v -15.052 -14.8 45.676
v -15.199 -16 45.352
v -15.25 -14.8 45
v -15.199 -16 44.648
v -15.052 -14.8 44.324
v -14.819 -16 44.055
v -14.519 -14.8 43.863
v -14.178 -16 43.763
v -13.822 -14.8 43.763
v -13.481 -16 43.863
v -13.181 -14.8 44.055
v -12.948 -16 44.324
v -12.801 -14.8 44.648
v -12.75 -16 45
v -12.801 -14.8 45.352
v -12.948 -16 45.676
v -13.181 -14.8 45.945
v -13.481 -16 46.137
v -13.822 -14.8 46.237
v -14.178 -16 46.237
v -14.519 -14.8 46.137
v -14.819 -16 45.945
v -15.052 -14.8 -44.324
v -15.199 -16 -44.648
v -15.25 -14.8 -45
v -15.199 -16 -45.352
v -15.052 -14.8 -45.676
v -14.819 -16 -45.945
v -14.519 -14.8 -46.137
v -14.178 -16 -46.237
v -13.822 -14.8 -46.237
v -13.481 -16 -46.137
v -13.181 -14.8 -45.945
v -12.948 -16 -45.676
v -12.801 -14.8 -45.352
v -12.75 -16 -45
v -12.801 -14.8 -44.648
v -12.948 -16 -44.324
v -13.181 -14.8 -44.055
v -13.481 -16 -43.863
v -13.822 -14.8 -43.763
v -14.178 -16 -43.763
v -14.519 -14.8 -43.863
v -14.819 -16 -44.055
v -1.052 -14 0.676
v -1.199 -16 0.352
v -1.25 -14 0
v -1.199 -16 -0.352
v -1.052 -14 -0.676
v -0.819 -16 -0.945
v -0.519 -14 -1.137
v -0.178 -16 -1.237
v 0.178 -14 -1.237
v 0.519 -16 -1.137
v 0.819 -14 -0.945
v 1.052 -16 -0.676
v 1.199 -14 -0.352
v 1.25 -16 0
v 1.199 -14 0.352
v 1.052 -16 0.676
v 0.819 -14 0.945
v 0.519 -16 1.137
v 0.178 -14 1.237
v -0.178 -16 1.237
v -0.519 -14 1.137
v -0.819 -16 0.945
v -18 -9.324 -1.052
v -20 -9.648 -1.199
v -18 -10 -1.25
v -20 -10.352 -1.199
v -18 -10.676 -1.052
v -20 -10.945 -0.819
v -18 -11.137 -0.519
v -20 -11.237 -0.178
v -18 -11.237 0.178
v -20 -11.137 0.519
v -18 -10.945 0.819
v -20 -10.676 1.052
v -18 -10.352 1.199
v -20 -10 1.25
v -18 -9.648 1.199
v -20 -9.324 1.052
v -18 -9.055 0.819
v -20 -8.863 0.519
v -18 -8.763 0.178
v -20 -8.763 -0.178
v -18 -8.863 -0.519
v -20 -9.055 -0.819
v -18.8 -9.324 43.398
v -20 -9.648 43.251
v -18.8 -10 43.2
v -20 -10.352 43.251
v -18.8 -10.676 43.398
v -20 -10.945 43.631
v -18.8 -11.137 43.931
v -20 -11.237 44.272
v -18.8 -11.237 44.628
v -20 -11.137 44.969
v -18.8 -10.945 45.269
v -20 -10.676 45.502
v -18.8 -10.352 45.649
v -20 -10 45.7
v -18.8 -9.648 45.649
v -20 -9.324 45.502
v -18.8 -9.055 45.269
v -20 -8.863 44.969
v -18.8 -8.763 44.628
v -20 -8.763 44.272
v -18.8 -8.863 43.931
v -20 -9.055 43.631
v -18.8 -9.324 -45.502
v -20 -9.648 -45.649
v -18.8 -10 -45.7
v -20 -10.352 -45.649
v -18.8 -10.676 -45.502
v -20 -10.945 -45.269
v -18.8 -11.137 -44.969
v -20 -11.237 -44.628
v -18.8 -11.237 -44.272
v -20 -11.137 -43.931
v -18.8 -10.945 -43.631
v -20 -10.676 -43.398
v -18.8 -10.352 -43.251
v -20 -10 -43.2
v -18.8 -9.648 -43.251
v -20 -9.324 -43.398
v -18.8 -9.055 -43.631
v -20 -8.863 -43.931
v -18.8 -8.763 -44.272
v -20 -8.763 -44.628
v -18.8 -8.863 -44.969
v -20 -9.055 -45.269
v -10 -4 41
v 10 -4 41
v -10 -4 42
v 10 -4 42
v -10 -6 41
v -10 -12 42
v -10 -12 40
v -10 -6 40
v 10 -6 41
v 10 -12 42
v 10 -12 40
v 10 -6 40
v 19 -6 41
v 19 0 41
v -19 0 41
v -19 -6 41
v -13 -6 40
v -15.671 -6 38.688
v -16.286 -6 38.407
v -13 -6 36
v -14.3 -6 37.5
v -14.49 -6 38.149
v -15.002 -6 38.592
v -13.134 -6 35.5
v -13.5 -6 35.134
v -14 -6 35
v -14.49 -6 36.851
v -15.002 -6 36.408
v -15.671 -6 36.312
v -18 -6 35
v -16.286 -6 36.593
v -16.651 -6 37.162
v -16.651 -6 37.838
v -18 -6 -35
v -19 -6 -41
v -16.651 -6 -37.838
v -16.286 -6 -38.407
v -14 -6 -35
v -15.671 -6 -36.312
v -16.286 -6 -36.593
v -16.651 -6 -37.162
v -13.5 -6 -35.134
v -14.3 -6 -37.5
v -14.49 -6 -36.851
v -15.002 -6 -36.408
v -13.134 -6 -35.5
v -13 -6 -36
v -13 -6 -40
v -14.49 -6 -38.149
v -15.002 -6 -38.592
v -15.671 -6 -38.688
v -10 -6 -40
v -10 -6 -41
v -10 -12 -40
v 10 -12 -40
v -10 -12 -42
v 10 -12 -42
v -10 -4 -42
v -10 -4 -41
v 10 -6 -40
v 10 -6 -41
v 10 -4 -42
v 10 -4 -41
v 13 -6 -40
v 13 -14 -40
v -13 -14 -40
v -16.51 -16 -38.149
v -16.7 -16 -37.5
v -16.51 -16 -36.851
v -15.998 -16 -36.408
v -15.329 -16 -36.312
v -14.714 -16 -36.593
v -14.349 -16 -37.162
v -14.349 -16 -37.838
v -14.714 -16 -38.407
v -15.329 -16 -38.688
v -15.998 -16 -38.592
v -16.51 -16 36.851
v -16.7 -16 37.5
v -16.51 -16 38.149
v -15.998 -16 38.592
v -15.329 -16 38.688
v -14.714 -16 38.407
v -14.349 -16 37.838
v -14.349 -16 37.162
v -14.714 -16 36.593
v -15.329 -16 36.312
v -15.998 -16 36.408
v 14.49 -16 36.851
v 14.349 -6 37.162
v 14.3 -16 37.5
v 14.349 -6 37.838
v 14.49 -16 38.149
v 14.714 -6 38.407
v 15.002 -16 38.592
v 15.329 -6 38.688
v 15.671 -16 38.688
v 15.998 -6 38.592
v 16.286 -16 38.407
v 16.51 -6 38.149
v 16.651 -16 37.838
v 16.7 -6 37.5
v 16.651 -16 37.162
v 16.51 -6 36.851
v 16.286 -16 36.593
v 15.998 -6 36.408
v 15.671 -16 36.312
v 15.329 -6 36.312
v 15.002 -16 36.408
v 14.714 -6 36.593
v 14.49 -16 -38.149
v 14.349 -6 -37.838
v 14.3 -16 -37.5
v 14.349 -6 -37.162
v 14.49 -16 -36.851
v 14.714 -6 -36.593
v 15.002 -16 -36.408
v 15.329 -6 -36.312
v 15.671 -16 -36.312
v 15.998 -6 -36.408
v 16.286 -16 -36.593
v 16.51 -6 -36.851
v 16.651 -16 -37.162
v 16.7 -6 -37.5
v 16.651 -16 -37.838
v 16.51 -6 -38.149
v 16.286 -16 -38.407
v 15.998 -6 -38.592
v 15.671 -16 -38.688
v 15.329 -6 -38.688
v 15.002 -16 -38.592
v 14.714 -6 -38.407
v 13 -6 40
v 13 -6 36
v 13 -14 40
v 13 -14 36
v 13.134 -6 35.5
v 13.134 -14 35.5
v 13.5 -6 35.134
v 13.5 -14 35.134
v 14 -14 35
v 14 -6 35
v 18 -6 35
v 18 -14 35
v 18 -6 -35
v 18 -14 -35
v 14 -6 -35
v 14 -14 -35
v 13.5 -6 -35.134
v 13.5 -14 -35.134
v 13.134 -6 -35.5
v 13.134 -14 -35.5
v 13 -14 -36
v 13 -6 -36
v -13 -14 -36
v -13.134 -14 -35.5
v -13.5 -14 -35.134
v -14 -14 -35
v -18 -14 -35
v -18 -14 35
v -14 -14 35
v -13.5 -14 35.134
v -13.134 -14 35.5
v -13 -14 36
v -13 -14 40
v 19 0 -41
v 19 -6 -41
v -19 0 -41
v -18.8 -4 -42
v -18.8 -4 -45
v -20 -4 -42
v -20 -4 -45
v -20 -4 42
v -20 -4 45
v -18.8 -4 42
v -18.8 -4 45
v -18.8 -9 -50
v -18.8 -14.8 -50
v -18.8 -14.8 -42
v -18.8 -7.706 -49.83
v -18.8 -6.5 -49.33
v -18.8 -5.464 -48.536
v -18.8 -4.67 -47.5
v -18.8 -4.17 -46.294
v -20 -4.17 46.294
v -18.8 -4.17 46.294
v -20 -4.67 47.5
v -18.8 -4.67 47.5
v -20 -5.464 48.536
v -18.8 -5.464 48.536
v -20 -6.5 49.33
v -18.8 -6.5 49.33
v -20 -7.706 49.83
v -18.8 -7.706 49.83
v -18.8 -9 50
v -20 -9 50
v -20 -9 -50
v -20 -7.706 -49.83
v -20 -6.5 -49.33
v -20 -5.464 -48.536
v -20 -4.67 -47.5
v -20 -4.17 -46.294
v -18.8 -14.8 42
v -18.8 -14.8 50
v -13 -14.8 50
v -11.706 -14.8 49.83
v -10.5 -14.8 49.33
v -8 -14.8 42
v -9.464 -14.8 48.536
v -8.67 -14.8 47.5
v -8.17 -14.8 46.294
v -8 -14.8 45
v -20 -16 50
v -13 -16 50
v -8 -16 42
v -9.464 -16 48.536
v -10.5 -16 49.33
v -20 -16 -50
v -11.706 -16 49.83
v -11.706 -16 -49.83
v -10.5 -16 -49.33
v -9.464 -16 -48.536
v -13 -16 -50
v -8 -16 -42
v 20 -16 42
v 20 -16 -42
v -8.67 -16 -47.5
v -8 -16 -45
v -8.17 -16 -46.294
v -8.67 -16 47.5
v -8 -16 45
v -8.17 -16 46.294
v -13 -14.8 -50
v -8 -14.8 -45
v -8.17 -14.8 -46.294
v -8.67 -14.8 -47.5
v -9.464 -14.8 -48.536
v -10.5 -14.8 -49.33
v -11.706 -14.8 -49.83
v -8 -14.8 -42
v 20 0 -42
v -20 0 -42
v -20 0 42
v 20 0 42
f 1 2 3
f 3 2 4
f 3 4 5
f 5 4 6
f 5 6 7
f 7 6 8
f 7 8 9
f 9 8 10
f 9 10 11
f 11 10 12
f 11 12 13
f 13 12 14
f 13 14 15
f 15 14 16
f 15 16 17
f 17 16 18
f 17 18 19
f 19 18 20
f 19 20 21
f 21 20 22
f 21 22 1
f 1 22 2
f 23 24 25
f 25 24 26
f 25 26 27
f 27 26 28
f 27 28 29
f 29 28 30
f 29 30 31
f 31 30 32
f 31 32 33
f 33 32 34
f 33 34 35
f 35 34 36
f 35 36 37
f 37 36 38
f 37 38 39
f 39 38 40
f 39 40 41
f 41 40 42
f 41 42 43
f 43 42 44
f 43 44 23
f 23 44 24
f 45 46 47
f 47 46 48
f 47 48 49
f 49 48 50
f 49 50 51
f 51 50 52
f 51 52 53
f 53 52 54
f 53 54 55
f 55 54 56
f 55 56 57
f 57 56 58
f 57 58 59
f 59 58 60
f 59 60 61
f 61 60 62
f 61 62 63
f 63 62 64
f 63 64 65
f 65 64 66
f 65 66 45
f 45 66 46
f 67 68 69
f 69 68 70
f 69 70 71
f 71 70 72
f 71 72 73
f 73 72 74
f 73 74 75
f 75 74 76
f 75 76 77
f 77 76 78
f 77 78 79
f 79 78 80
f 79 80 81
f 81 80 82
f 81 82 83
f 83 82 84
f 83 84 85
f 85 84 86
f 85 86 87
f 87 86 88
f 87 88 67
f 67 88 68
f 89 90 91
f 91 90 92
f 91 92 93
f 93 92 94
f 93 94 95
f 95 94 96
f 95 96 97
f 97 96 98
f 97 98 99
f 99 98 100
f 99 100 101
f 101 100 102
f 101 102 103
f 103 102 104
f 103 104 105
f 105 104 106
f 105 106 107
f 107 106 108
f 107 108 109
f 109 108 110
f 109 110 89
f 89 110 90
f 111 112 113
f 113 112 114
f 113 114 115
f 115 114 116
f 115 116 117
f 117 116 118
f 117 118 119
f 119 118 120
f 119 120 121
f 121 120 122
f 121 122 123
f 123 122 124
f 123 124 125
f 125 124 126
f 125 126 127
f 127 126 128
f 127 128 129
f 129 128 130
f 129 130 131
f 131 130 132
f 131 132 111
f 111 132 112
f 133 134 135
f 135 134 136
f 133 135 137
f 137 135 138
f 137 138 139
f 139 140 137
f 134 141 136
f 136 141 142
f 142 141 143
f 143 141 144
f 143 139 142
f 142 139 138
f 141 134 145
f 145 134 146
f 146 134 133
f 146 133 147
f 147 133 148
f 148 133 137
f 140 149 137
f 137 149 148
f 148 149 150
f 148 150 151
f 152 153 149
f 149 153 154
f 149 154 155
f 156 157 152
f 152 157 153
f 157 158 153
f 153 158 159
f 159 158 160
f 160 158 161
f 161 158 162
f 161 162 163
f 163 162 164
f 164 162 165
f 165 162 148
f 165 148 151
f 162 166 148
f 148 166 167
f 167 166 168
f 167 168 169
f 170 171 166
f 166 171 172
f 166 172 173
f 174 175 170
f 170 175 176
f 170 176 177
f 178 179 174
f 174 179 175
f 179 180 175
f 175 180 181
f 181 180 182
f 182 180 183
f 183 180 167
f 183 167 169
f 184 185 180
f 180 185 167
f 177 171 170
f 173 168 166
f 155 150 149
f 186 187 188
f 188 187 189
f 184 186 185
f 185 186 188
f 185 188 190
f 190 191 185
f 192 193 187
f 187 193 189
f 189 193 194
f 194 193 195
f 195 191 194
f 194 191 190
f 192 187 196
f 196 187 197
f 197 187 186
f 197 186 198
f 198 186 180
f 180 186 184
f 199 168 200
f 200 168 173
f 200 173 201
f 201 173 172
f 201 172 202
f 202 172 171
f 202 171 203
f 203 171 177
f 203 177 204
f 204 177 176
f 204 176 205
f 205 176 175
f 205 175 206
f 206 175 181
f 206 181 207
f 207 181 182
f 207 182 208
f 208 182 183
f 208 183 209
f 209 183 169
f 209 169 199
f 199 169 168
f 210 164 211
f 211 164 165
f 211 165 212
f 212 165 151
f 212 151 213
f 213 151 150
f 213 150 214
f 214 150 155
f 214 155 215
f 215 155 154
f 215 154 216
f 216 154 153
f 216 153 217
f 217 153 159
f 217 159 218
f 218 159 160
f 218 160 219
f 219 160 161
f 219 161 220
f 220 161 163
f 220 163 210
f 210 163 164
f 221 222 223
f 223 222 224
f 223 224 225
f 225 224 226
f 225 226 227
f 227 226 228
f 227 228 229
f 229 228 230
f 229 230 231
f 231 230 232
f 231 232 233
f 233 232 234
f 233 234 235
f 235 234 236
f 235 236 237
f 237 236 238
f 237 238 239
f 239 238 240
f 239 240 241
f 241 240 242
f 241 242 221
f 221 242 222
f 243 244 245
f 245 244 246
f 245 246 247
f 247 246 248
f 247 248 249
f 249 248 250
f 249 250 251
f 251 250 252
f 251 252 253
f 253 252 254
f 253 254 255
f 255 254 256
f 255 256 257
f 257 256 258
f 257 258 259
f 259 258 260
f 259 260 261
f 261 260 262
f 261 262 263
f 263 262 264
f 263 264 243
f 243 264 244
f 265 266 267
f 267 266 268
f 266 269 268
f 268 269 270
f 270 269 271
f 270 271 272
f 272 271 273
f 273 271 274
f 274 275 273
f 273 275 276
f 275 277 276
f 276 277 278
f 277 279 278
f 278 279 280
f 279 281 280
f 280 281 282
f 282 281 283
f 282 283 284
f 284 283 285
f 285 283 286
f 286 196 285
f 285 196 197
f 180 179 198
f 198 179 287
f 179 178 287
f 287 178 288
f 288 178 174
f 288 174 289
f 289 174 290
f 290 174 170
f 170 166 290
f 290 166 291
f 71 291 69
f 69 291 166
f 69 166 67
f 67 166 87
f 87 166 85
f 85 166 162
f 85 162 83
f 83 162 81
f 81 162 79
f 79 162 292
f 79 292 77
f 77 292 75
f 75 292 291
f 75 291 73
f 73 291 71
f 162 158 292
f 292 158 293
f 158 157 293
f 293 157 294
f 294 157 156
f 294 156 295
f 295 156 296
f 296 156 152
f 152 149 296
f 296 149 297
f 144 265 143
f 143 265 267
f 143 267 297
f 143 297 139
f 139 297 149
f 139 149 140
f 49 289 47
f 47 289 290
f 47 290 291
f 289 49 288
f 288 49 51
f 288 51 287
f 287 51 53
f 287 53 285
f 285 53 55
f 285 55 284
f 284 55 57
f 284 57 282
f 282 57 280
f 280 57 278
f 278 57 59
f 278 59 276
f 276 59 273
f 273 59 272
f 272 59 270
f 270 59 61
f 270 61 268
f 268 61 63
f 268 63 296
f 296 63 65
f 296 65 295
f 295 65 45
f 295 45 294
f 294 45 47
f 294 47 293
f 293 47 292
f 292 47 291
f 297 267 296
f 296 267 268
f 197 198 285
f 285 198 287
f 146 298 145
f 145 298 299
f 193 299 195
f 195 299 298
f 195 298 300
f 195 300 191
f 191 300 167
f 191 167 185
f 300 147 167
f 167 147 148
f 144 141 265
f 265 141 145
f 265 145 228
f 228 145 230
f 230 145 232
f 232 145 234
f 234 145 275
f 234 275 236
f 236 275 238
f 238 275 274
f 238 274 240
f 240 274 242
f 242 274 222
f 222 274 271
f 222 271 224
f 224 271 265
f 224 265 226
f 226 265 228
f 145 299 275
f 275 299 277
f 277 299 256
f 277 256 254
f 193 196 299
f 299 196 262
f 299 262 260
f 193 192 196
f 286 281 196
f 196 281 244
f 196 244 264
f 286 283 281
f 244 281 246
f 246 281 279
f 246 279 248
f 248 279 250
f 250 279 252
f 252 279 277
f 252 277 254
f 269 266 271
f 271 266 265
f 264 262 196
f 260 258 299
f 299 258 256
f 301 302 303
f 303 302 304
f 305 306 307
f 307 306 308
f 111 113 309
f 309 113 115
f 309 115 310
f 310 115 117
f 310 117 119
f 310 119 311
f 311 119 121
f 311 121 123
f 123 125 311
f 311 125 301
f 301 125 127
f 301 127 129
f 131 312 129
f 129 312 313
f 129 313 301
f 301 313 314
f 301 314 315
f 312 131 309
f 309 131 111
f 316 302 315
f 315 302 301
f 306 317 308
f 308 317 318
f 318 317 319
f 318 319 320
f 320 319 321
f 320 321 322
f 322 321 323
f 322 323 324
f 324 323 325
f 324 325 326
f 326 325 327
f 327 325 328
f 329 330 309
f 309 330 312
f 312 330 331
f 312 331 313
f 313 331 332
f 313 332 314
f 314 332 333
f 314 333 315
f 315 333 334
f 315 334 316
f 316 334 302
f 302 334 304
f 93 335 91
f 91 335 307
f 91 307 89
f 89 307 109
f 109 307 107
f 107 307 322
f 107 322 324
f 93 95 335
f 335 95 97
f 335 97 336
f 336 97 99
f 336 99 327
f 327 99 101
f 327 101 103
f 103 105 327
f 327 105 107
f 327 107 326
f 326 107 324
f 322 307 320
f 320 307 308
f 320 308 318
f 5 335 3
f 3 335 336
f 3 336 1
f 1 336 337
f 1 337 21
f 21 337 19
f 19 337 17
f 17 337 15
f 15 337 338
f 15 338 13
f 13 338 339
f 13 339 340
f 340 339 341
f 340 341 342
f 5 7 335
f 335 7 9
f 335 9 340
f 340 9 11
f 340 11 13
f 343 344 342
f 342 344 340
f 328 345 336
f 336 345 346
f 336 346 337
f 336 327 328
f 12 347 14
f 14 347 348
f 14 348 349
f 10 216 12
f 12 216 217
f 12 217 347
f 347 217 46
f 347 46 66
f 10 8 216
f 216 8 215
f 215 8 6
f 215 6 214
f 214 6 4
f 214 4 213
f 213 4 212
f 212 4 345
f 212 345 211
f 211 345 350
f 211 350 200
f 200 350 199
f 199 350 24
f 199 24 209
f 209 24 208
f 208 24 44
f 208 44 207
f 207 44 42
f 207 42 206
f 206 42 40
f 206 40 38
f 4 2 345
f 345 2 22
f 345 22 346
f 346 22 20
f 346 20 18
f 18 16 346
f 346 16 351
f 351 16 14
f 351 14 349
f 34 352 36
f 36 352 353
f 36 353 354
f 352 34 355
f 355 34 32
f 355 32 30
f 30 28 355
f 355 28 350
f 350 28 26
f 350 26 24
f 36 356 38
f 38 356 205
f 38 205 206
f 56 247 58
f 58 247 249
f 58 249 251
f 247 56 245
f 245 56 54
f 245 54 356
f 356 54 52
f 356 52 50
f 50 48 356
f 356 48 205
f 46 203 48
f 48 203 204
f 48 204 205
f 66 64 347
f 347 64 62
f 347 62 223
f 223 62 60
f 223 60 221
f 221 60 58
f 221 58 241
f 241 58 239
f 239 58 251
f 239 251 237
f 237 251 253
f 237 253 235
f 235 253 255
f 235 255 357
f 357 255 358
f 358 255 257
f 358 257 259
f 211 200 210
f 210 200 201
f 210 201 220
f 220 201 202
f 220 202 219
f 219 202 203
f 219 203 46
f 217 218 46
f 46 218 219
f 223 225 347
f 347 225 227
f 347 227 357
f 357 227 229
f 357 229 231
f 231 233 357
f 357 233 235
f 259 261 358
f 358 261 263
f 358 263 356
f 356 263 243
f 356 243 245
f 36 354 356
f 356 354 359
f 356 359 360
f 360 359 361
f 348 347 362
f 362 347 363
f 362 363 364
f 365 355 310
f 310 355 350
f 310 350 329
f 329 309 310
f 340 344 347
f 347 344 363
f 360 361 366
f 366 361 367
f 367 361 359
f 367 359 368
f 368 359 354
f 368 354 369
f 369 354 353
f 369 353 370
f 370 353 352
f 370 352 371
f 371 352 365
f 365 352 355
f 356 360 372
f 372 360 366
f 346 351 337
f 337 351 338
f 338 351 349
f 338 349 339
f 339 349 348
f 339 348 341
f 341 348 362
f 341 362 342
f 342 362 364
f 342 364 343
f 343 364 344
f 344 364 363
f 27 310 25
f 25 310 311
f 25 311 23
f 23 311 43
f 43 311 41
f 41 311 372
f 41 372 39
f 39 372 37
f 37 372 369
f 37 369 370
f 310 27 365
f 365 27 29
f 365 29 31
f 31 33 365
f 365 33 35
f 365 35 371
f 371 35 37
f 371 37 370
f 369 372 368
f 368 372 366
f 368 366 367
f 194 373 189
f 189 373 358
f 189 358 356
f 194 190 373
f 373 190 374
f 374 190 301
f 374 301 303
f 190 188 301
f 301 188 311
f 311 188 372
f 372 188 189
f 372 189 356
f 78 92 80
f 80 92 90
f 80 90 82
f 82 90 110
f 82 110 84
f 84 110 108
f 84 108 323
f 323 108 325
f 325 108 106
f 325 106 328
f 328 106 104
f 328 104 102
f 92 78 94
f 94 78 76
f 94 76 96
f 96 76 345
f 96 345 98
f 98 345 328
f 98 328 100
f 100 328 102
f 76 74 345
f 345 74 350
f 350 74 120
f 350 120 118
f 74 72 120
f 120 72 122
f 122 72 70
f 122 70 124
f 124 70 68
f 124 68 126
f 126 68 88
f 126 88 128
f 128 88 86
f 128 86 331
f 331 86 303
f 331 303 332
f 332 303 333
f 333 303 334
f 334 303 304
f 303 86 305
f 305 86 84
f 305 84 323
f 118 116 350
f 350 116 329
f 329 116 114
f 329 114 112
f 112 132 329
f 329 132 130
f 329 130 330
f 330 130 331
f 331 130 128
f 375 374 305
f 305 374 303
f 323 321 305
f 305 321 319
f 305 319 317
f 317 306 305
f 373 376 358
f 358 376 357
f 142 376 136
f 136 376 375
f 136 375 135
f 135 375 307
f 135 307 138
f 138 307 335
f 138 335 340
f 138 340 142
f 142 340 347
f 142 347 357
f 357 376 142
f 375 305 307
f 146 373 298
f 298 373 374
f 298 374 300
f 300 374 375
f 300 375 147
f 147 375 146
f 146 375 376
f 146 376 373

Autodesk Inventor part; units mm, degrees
ref_plane "YZ Plane" through (0, 0, 0) normal (1, 0, 0) x (0, 1, 0)
ref_plane "XZ Plane" through (0, 0, 0) normal (0, 1, 0) x (-1, 0, 0)
ref_plane "XY Plane" through (0, 0, 0) normal (0, 0, 1) x (1, 0, 0)
sketch "本体面" plane through (0, 0, 0) normal (0, 1, 0) x (-1, 0, 0)
  line L0 (20, 42) -> (-20, 42)
  line L1 (-20, 42) -> (-20, -42)
  line L2 (-20, -42) -> (20, -42)
  line L3 (20, -42) -> (20, 42)
  line L4 (20, 0) -> (-20, 0) construction
  line L5 (0, 42) -> (0, -42) construction
  point P0 (0, 0)
  point P1 (0, 0)
  dimension "d0" = 84
  dimension "d1" = 40
extrude "本体" add sketch "本体面" against normal blind 16
sketch "背羽形状" plane through (0, -16, 0) normal (0, -1, 0) x (1, 0, 0)
  line L0 (-20, -50) -> (-13, -50)
  line L1 (-8, -45) -> (-8, 45)
  line L2 (-13, 50) -> (-20, 50)
  line L3 (-20, 50) -> (-20, -50)
  line L4 (-20, 42) -> (-20, -42) projected
  arc A0 (-13, -50) -> (-8, -45) centre (-13, -45) ccw
  arc A1 (-8, 45) -> (-13, 50) centre (-13, 45) ccw
  point P0 (0, 0)
  point P1 (-8, 50)
  point P2 (-8, -50)
  point P3 (-20, 0)
  point P4 (-20, 50)
  point P5 (-20, -50)
  dimension "d94" = 100
  dimension "d95" = 12
  dimension "d128" = 5
extrude "背羽" add sketch "背羽形状" against normal blind 1.2
sketch "上羽形状" plane through (-20, 0, -42) normal (-1, 0, 0) x (0, 0, 1)
  line L0 (92, -16) -> (-8, -16)
  line L1 (-8, -16) -> (-8, -9)
  line L2 (-3, -4) -> (87, -4)
  line L3 (92, -9) -> (92, -16)
  line L4 (92, -16) -> (-8, -16) projected
  arc A0 (92, -9) -> (87, -4) centre (87, -9) ccw
  arc A1 (-3, -4) -> (-8, -9) centre (-3, -9) ccw
  point P0 (42, 0)
  point P1 (-8, -4)
  point P2 (92, -4)
  point P3 (42, -16)
  dimension "d122" = 100
  dimension "d123" = 12
  dimension "d124" = 5
  dimension "d125" = 5
extrude "上羽" add sketch "上羽形状" against normal blind 1.2
sketch "空洞上面" plane through (0, 0, 0) normal (0, 1, 0) x (1, 0, 0)
  line L0 (-19, -41) -> (19, -41)
  line L1 (19, -41) -> (19, 41)
  line L2 (19, 41) -> (-19, 41)
  line L3 (-19, 41) -> (-19, -41)
  line L4 (-19, 0) -> (19, 0) construction
  line L5 (0, -41) -> (0, 41) construction
  point P0 (0, 0)
  point P1 (0, 0)
  dimension "d4" = 82
  dimension "d5" = 38
extrude "空洞上" cut sketch "空洞上面" against normal blind 6
sketch "空洞下面" plane through (0, -6, 0) normal (0, 1, 0) x (1, 0, 0)
  line L0 (-13, -40) -> (13, -40)
  line L1 (18, -35) -> (18, 35)
  line L2 (13, 40) -> (-13, 40)
  line L3 (-18, 35) -> (-18, -35)
  line L4 (-18, 0) -> (18, 0) construction
  line L5 (0, -40) -> (0, 40) construction
  line L6 (-14, -35) -> (-18, -35)
  line L7 (-13, -36) -> (-13, -40)
  line L8 (14, -35) -> (18, -35)
  line L9 (13, -36) -> (13, -40)
  line L10 (-14, 35) -> (-18, 35)
  line L11 (-13, 36) -> (-13, 40)
  line L12 (14, 35) -> (18, 35)
  line L13 (13, 36) -> (13, 40)
  arc A0 (-13, -36) -> (-14, -35) centre (-14, -36) ccw
  arc A1 (14, -35) -> (13, -36) centre (14, -36) ccw
  arc A2 (-14, 35) -> (-13, 36) centre (-14, 36) ccw
  arc A3 (13, 36) -> (14, 35) centre (14, 36) ccw
  point P0 (0, 0)
  point P1 (0, 0)
  point P2 (-13, -35)
  point P3 (13, -35)
  point P4 (-13, 35)
  point P5 (13, 35)
  dimension "d10" = 36
  dimension "d11" = 80
  dimension "d12" = 5
  dimension "d13" = 5
  dimension "d14" = 5
  dimension "d15" = 5
  dimension "d16" = 5
  dimension "d17" = 5
  dimension "d18" = 5
  dimension "d19" = 5
  dimension "d20" = 1
extrude "空洞下" cut sketch "空洞下面" against normal blind 8
sketch "取付穴位置" plane through (0, -6, 0) normal (0, 1, 0) x (1, 0, 0)
  line L0 (0, 37.5) -> (0, -37.5) construction
  line L1 (-15.5, -37.5) -> (15.5, -37.5) construction
  line L2 (-15.5, 37.5) -> (15.5, 37.5) construction
  point P0 (0, 0)
  point P1 (0, 0)
  dimension "d26" = 75
  dimension "d27" = 31
  dimension "d28" = 31
hole "取付穴" at (-15.5, -6, 37.5) at (15.5, -6, 37.5) at (-15.5, -6, -37.5) at (15.5, -6, -37.5) direction (0, -1, 0) diameter 2.4 depth 20 tip angle 118
sketch "ケーブル穴右形状" plane through (20, 0, -42) normal (0, 0, -1) x (-1, 0, 0)
  line L0 (0, 0) -> (20, 0) construction
  line L1 (20, 0) -> (20, -8) construction
  line L2 (20, -4) -> (20, -12) construction
  line L3 (10, -4) -> (30, -4)
  line L4 (30, -4) -> (30, -12)
  line L5 (30, -12) -> (10, -12)
  line L6 (10, -12) -> (10, -4)
  line L7 (10, -4) -> (30, -12) construction
  line L8 (30, -4) -> (10, -12) construction
  point P0 (20, 0)
  point P1 (24, -8)
  dimension "d76" = 20
  dimension "d155" = 8
  dimension "d156" = 20
extrude "ケーブル穴右" cut sketch "ケーブル穴右形状" against normal blind 5
sketch "ケーブル穴左形状" plane through (-20, 0, 42) normal (0, 0, 1) x (1, 0, 0)
  line L0 (0, 0) -> (20, 0) construction
  line L1 (20, 0) -> (20, -8) construction
  line L2 (20, -4) -> (20, -12) construction
  line L3 (10, -4) -> (30, -4) projected
  line L4 (10, -12) -> (30, -12)
  line L5 (30, -12) -> (30, -4)
  line L6 (30, -4) -> (10, -4)
  line L7 (10, -4) -> (10, -12)
  line L8 (10, -12) -> (30, -4) construction
  line L9 (30, -12) -> (10, -4) construction
  point P0 (20, 0)
  dimension "d98" = 20
  dimension "d99" = 8
  dimension "d101" = 8
  dimension "d157" = 20
extrude "ケーブル穴左" cut sketch "ケーブル穴左形状" against normal blind 5
sketch "上穴位置" plane through (-20, 0, -42) normal (-1, 0, 0) x (0, 0, 1)
  line L0 (42, -16) -> (42, -10) construction
  line L1 (92, -16) -> (-8, -16) construction
  line L2 (86.45, -10) -> (-2.45, -10) construction
  point P0 (42, 0)
  dimension "d129" = 6
  dimension "d130" = 88.9
hole "上穴" at (-20, -10, 44.45) at (-20, -10, 0) at (-20, -10, -44.45) direction (1, 0, 0) diameter 2.5 depth 8 tip angle 118
sketch "背穴位置" plane through (0, -16, 0) normal (0, -1, 0) x (1, 0, 0)
  line L0 (-20, 0) -> (20, 0) construction
  line L1 (-20, 50) -> (-20, -50) construction
  line L2 (-14, -45) -> (-14, 45) construction
  line L3 (20, -42) -> (20, 42) construction
  point P0 (0, 0)
  point P1 (-14, 0)
  point P2 (0, 0)
  dimension "d139" = 90
  dimension "d147" = 6
hole "背穴" at (-14, -16, -45) at (-14, -16, 45) at (0, -16, 0) direction (0, 1, 0) diameter 2.5 depth 8 tip angle 118
properties part number "OLED_holder"
